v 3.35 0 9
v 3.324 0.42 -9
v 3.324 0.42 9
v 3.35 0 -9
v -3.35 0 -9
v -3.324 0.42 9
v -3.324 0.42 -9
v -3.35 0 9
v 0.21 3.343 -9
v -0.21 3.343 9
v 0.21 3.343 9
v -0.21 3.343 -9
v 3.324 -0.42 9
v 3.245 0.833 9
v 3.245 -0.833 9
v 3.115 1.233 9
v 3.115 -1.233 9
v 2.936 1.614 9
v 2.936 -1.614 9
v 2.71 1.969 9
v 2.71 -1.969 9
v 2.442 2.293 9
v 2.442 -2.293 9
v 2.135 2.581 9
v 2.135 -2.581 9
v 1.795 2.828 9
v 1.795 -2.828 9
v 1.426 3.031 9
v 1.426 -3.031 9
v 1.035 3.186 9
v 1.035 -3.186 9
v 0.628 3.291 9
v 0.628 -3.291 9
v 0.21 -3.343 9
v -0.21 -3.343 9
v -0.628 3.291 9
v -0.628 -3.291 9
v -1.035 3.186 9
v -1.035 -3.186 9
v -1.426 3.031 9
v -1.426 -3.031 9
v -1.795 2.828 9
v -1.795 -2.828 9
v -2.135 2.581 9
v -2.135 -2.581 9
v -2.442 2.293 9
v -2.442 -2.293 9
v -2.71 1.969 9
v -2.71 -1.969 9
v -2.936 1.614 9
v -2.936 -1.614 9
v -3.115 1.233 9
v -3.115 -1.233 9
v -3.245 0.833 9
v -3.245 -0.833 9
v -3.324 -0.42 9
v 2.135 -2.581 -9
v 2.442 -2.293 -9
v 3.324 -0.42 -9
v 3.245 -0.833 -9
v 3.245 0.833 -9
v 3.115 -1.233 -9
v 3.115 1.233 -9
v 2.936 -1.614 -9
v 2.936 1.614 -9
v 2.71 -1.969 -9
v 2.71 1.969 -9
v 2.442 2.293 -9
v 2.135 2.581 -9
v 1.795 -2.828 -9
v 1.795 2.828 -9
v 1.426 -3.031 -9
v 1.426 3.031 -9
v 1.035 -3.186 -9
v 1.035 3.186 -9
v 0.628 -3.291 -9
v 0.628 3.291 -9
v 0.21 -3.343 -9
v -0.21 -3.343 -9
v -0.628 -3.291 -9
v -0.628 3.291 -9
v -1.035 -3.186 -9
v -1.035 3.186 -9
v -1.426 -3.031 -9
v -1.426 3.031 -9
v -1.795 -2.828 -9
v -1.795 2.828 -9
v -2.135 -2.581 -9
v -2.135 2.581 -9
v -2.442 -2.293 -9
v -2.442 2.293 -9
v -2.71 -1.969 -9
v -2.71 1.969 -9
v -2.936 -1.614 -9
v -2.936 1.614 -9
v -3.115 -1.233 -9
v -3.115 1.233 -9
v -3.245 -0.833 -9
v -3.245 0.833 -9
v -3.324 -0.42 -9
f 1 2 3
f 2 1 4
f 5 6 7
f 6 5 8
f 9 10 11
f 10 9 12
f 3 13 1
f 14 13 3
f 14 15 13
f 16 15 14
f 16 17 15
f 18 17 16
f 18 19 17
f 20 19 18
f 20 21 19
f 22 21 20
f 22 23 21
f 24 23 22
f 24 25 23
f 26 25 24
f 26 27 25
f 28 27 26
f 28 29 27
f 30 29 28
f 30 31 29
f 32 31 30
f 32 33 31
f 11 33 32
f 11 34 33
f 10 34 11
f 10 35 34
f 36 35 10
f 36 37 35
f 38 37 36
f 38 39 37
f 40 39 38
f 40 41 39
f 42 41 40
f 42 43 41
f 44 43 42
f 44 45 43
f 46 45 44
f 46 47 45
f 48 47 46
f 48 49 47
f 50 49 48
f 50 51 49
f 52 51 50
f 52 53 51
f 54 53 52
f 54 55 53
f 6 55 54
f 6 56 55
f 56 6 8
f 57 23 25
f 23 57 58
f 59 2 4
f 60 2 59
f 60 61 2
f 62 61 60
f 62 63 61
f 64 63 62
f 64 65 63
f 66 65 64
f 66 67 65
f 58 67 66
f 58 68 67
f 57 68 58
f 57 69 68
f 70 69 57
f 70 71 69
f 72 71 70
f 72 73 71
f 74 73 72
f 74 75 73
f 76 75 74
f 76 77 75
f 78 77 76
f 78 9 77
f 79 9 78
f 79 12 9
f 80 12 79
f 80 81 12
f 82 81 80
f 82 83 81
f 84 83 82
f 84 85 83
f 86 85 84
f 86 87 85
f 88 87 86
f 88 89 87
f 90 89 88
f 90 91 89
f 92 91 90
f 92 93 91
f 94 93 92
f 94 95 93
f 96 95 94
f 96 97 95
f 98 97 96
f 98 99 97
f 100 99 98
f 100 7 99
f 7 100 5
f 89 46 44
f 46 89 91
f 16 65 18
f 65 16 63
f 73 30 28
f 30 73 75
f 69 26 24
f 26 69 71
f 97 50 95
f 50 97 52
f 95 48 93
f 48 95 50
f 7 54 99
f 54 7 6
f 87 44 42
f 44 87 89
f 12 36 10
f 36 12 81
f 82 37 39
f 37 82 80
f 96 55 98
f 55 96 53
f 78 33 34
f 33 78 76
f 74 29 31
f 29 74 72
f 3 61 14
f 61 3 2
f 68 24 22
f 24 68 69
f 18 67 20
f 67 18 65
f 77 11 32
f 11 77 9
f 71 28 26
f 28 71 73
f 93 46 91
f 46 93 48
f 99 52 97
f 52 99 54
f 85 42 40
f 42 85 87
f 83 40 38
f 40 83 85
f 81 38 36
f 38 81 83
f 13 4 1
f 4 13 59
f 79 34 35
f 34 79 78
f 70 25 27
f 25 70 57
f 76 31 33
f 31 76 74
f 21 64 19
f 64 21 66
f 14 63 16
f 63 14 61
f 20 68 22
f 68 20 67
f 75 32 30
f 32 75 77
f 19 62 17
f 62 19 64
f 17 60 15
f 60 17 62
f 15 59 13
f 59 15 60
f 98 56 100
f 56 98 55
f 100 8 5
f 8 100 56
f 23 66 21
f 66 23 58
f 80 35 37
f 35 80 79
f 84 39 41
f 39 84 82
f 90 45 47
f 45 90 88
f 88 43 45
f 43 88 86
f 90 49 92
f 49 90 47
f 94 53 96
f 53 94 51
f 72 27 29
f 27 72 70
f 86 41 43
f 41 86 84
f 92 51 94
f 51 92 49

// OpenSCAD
$fn = 50;


difference() {
	union() {
		translate(v = [0, 0, -9.0000000000]) {
			cylinder(h = 18, r = 3.3500000000);
		}
	}
	union() {
		translate(v = [0, 0, -100.0000000000]) {
			cylinder(h = 200, r = 0);
		}
	}
}
